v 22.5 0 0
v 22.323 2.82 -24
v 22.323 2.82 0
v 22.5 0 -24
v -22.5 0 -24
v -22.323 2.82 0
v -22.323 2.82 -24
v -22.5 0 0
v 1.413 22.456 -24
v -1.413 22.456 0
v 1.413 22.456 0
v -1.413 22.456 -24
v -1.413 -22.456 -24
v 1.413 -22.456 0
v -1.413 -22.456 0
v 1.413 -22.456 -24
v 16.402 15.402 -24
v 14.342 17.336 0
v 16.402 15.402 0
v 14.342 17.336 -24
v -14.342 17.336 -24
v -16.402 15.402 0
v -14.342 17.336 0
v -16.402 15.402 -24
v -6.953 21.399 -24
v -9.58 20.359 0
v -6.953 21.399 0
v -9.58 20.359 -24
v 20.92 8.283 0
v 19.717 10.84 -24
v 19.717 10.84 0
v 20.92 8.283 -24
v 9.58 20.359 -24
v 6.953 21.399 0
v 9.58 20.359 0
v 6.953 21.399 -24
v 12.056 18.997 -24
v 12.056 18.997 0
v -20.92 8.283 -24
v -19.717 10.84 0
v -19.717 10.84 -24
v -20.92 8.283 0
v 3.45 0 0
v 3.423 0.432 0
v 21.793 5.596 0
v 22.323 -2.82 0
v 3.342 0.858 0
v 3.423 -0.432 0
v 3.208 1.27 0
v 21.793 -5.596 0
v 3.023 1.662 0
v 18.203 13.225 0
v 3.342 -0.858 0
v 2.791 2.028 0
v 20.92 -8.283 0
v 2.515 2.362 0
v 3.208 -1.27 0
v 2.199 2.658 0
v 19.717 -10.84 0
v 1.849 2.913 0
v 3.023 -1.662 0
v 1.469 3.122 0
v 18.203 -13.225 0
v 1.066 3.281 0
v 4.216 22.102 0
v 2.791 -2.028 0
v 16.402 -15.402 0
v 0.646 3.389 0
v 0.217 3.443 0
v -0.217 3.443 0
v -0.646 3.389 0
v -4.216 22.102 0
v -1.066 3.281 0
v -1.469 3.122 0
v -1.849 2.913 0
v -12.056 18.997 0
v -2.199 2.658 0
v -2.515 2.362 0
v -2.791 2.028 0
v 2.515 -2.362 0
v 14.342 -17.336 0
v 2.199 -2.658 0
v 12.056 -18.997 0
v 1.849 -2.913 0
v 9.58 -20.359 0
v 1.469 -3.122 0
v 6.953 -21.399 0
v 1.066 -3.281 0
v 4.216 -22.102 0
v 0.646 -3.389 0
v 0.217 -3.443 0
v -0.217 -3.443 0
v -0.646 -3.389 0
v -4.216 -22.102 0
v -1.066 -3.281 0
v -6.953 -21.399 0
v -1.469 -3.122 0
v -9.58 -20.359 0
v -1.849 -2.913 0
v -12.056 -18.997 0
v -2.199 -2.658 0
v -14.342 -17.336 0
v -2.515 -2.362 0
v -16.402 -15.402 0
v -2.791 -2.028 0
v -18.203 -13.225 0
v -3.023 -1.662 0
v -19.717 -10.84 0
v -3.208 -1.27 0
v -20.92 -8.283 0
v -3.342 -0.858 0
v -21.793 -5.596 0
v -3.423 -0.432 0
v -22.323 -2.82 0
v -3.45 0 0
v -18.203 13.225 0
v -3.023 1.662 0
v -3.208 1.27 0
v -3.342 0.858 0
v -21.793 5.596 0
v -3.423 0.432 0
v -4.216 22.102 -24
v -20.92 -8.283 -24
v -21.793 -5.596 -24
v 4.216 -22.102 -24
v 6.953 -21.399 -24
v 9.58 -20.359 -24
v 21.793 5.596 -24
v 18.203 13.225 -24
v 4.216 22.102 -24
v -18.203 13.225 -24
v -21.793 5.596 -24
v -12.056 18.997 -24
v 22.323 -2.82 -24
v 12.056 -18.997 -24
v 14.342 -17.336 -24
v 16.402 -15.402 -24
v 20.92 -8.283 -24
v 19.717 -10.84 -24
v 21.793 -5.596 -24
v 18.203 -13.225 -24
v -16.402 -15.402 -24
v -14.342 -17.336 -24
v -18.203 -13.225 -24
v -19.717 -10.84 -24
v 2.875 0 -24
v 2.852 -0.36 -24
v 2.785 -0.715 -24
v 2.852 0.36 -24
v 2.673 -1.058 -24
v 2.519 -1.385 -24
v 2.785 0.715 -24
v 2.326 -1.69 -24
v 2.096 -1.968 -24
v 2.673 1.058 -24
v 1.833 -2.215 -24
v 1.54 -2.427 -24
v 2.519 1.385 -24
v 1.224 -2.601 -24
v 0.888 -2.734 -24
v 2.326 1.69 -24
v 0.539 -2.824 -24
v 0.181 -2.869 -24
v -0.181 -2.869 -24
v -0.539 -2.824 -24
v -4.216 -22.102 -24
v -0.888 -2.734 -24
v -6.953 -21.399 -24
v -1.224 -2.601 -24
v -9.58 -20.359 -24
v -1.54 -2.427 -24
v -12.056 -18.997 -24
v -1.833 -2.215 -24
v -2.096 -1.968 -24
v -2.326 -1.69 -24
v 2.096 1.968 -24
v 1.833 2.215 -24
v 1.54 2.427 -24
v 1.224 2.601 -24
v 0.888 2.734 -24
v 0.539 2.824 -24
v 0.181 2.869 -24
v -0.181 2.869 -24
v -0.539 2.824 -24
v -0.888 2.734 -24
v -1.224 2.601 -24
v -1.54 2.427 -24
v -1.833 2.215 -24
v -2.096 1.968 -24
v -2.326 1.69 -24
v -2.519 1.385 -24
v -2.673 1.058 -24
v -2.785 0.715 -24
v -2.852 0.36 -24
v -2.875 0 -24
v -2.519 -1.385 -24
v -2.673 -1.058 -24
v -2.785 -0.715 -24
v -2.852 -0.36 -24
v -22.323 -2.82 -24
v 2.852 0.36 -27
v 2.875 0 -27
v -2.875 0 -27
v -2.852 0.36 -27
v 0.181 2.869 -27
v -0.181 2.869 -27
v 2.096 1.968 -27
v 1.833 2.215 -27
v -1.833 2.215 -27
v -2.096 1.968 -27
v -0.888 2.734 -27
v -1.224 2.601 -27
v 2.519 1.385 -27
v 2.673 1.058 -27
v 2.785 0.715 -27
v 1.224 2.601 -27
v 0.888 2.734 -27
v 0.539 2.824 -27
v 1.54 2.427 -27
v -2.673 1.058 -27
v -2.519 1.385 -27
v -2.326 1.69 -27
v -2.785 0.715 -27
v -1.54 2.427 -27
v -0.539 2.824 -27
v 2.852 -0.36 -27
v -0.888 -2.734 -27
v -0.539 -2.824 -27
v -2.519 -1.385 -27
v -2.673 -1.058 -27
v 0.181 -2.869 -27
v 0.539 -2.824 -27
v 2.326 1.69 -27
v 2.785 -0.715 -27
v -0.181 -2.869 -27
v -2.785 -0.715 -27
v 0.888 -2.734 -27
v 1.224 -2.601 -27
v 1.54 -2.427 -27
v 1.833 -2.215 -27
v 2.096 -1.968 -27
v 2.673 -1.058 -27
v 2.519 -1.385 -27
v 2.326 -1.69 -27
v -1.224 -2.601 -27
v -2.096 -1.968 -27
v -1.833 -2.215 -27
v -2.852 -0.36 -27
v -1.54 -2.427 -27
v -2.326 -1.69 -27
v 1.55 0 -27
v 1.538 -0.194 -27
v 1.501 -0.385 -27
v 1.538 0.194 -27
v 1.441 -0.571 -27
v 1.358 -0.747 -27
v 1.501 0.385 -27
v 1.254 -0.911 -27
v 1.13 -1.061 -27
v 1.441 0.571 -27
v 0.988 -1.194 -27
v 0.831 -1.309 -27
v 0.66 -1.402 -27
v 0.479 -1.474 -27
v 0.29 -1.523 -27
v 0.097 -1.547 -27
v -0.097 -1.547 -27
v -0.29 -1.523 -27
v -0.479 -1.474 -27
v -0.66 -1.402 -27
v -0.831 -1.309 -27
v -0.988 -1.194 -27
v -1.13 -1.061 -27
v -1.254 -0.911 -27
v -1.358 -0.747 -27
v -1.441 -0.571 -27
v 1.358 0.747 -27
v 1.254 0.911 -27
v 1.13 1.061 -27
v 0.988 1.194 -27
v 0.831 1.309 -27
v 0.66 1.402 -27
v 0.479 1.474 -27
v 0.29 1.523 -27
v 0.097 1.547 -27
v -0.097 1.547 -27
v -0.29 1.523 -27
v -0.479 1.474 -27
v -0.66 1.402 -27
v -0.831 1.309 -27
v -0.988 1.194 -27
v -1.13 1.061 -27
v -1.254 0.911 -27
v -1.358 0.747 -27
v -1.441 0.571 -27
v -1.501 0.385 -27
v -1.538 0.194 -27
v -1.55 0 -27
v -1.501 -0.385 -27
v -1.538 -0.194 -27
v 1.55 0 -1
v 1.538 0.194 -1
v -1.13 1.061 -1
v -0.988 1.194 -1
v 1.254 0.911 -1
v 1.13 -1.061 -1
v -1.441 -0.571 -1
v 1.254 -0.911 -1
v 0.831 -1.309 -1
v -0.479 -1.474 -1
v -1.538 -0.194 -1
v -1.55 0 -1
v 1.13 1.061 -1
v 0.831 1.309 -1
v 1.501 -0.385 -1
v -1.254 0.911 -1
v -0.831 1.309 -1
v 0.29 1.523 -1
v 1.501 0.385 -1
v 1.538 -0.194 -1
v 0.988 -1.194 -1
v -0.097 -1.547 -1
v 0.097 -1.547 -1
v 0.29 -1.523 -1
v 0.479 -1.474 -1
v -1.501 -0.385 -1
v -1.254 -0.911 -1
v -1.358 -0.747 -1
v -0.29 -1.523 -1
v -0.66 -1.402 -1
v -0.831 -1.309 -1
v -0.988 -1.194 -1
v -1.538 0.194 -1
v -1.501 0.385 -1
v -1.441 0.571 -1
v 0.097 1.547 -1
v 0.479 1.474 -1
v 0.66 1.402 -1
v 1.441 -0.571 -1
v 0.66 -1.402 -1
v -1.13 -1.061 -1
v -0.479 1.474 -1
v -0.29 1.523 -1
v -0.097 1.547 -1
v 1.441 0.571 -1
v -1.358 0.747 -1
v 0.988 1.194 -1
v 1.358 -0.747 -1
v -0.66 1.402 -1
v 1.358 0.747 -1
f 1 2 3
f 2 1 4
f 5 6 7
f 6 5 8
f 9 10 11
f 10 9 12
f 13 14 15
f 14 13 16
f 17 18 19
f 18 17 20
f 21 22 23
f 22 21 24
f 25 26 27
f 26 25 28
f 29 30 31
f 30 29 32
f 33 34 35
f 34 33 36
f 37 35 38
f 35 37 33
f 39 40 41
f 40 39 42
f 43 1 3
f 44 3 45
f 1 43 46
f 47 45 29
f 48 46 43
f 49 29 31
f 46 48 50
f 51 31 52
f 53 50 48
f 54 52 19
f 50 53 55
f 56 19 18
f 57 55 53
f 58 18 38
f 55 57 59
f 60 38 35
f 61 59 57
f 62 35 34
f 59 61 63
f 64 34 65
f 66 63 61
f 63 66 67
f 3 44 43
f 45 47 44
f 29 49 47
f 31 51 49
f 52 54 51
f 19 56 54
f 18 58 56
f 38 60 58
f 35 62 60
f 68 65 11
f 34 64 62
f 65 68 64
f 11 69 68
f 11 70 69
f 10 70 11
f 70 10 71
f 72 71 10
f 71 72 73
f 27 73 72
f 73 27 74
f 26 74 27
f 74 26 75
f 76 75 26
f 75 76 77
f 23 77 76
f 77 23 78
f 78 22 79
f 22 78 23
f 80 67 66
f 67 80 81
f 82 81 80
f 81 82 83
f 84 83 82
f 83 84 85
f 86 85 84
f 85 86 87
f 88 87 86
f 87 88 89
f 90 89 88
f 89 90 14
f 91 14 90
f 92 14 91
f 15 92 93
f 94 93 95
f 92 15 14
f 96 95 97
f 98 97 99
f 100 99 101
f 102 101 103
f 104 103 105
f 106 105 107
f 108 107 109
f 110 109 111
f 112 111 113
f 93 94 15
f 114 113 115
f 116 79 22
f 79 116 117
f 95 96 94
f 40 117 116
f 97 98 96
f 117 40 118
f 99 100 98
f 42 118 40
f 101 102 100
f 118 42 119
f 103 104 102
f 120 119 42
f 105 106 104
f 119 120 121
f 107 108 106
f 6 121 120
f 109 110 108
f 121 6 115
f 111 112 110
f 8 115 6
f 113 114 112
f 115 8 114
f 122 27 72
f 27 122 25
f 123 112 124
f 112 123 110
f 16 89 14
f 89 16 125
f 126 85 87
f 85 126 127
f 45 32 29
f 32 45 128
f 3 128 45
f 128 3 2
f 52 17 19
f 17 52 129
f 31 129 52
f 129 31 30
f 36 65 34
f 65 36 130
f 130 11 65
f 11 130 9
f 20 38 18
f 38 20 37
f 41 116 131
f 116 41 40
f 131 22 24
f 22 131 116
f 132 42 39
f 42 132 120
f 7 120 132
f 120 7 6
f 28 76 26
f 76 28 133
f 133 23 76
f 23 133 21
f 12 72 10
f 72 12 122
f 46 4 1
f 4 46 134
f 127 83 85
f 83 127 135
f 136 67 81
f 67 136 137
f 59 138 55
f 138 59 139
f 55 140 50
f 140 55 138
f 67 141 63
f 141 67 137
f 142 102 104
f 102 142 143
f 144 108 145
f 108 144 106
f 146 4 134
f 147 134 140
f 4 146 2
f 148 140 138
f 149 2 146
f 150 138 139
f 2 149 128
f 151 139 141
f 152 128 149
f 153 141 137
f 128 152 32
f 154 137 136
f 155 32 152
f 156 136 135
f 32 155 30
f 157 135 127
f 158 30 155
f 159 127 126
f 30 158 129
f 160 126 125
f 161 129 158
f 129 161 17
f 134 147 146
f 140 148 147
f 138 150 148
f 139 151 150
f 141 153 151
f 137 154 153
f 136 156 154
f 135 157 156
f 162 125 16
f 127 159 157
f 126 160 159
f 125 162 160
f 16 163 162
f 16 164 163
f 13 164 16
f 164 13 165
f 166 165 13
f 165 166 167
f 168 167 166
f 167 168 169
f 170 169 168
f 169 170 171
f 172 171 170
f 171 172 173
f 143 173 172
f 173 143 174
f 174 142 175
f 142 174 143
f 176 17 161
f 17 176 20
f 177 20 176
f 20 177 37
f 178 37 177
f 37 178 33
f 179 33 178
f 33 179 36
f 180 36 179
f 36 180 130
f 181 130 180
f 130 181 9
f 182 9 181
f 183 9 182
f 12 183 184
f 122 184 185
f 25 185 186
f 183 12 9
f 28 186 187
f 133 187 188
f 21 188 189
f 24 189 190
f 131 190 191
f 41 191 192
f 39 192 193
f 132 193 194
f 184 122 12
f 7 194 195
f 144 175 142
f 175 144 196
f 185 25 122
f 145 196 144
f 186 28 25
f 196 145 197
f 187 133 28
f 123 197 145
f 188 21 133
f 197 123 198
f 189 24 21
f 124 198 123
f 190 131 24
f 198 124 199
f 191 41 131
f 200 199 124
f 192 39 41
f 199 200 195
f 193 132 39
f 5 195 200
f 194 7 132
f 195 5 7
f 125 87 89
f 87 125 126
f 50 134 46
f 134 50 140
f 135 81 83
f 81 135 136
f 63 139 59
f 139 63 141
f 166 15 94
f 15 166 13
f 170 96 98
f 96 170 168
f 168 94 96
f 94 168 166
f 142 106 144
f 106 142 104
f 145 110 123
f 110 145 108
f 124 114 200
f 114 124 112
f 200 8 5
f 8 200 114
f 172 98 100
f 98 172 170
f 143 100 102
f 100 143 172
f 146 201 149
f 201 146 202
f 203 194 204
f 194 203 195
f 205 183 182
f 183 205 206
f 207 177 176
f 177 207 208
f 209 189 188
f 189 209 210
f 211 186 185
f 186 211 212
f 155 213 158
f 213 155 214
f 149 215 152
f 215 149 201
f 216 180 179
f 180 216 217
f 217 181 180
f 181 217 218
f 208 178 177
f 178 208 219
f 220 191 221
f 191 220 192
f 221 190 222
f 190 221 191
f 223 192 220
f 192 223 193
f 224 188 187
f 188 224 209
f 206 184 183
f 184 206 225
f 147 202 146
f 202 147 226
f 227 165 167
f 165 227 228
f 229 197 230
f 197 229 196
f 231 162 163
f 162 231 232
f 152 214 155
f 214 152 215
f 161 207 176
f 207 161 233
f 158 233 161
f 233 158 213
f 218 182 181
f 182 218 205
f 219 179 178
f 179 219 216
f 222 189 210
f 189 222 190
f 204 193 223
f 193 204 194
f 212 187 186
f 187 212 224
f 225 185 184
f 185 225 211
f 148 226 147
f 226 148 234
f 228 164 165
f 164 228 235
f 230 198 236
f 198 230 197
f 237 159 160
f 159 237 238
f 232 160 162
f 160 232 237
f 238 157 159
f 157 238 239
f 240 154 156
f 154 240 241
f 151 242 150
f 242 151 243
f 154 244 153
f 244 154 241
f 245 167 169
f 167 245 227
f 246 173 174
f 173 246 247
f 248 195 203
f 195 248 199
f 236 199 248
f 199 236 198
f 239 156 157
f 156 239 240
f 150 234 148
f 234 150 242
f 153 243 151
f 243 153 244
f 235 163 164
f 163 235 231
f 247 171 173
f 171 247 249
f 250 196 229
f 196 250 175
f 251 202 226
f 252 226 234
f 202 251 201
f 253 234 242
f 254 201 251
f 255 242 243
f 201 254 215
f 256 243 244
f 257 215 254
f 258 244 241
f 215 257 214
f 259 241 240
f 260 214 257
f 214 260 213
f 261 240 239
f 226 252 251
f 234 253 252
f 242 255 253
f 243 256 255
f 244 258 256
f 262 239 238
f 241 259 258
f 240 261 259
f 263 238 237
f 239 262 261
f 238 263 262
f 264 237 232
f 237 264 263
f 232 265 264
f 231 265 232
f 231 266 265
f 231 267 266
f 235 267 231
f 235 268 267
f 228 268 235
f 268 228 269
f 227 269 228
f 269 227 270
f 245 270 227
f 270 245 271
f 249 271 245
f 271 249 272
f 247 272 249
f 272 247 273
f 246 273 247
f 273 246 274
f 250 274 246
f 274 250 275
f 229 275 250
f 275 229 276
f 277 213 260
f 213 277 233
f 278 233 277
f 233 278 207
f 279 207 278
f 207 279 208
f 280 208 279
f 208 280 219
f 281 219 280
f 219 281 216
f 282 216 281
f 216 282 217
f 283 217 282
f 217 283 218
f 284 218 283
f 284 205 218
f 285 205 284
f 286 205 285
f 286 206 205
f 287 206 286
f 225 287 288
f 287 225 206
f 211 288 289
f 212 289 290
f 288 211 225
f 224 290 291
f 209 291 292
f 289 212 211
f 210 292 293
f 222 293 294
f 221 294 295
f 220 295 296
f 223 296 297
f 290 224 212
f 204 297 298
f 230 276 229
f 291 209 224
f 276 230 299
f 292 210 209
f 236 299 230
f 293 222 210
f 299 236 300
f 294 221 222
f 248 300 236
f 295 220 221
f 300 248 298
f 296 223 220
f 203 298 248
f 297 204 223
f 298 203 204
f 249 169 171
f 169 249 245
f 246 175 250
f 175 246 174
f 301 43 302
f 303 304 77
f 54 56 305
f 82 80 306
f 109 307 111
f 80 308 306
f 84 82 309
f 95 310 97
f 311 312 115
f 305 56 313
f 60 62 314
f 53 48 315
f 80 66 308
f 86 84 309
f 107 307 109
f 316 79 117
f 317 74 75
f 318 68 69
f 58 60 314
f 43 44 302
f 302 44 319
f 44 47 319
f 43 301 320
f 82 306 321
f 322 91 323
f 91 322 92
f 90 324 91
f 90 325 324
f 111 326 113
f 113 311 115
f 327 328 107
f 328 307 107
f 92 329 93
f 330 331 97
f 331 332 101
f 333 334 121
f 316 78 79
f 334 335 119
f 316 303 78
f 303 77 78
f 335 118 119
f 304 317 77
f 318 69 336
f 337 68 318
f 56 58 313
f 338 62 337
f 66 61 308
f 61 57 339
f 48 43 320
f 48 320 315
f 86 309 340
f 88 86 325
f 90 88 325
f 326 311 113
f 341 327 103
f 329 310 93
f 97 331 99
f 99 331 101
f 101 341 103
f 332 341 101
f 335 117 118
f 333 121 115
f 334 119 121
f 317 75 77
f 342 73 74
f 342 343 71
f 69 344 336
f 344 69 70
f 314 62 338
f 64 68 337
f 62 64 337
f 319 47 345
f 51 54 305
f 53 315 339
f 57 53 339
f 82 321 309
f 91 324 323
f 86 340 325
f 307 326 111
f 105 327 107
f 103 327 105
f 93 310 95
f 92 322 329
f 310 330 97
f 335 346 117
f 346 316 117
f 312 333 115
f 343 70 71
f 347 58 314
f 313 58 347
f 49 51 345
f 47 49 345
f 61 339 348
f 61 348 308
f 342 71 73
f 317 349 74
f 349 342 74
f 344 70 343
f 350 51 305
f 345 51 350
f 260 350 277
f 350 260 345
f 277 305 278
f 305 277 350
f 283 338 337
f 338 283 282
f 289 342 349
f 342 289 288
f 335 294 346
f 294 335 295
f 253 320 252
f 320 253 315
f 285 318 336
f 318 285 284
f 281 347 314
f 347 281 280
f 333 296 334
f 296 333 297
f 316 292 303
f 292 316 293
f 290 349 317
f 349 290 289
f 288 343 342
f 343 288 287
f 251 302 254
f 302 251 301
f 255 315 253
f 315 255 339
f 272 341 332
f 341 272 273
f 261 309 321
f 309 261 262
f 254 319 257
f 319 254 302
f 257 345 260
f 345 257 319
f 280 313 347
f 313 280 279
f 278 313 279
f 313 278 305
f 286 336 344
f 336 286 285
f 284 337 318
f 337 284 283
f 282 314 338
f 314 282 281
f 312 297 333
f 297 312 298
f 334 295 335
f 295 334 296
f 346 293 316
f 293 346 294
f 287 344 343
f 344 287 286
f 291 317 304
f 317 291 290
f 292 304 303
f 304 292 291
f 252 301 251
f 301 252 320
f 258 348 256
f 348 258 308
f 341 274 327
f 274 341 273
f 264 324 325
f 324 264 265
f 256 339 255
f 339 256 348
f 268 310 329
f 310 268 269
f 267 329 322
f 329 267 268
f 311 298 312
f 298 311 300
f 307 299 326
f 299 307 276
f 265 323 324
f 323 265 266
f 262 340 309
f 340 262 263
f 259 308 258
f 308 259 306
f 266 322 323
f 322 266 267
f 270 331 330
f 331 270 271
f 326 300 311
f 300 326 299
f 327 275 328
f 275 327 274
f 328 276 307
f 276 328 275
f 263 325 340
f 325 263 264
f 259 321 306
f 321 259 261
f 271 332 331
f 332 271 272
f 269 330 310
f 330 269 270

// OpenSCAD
$fn = 50;

difference() {
	union() {
		translate(v = [0, 0, -24.0]) {
			cylinder(h = 24, r = 22.5);
		}
		#translate(v = [0, 0, -27.0]) {
			cylinder(h = 27, r = 2.875);
		}
	}
	union() {
		translate(v = [0, 0, 0]) {
			rotate(a = [0, 0, 0]) {
				difference() {
					union() {
						translate(v = [0, 0, -27.0]) {
							cylinder(h = 27, r = 1.25);
						}
						translate(v = [0, 0, -1.0]) {
							cylinder(h = 1.0, r1 = 1.55, r2 = 3.45);
						}
						translate(v = [0, 0, -27.0]) {
							cylinder(h = 27, r = 1.55);
						}
						translate(v = [0, 0, -27.0]) {
							cylinder(h = 27, r = 1.25);
						}
					}
					union();
				}
			}
		}
	}
}
